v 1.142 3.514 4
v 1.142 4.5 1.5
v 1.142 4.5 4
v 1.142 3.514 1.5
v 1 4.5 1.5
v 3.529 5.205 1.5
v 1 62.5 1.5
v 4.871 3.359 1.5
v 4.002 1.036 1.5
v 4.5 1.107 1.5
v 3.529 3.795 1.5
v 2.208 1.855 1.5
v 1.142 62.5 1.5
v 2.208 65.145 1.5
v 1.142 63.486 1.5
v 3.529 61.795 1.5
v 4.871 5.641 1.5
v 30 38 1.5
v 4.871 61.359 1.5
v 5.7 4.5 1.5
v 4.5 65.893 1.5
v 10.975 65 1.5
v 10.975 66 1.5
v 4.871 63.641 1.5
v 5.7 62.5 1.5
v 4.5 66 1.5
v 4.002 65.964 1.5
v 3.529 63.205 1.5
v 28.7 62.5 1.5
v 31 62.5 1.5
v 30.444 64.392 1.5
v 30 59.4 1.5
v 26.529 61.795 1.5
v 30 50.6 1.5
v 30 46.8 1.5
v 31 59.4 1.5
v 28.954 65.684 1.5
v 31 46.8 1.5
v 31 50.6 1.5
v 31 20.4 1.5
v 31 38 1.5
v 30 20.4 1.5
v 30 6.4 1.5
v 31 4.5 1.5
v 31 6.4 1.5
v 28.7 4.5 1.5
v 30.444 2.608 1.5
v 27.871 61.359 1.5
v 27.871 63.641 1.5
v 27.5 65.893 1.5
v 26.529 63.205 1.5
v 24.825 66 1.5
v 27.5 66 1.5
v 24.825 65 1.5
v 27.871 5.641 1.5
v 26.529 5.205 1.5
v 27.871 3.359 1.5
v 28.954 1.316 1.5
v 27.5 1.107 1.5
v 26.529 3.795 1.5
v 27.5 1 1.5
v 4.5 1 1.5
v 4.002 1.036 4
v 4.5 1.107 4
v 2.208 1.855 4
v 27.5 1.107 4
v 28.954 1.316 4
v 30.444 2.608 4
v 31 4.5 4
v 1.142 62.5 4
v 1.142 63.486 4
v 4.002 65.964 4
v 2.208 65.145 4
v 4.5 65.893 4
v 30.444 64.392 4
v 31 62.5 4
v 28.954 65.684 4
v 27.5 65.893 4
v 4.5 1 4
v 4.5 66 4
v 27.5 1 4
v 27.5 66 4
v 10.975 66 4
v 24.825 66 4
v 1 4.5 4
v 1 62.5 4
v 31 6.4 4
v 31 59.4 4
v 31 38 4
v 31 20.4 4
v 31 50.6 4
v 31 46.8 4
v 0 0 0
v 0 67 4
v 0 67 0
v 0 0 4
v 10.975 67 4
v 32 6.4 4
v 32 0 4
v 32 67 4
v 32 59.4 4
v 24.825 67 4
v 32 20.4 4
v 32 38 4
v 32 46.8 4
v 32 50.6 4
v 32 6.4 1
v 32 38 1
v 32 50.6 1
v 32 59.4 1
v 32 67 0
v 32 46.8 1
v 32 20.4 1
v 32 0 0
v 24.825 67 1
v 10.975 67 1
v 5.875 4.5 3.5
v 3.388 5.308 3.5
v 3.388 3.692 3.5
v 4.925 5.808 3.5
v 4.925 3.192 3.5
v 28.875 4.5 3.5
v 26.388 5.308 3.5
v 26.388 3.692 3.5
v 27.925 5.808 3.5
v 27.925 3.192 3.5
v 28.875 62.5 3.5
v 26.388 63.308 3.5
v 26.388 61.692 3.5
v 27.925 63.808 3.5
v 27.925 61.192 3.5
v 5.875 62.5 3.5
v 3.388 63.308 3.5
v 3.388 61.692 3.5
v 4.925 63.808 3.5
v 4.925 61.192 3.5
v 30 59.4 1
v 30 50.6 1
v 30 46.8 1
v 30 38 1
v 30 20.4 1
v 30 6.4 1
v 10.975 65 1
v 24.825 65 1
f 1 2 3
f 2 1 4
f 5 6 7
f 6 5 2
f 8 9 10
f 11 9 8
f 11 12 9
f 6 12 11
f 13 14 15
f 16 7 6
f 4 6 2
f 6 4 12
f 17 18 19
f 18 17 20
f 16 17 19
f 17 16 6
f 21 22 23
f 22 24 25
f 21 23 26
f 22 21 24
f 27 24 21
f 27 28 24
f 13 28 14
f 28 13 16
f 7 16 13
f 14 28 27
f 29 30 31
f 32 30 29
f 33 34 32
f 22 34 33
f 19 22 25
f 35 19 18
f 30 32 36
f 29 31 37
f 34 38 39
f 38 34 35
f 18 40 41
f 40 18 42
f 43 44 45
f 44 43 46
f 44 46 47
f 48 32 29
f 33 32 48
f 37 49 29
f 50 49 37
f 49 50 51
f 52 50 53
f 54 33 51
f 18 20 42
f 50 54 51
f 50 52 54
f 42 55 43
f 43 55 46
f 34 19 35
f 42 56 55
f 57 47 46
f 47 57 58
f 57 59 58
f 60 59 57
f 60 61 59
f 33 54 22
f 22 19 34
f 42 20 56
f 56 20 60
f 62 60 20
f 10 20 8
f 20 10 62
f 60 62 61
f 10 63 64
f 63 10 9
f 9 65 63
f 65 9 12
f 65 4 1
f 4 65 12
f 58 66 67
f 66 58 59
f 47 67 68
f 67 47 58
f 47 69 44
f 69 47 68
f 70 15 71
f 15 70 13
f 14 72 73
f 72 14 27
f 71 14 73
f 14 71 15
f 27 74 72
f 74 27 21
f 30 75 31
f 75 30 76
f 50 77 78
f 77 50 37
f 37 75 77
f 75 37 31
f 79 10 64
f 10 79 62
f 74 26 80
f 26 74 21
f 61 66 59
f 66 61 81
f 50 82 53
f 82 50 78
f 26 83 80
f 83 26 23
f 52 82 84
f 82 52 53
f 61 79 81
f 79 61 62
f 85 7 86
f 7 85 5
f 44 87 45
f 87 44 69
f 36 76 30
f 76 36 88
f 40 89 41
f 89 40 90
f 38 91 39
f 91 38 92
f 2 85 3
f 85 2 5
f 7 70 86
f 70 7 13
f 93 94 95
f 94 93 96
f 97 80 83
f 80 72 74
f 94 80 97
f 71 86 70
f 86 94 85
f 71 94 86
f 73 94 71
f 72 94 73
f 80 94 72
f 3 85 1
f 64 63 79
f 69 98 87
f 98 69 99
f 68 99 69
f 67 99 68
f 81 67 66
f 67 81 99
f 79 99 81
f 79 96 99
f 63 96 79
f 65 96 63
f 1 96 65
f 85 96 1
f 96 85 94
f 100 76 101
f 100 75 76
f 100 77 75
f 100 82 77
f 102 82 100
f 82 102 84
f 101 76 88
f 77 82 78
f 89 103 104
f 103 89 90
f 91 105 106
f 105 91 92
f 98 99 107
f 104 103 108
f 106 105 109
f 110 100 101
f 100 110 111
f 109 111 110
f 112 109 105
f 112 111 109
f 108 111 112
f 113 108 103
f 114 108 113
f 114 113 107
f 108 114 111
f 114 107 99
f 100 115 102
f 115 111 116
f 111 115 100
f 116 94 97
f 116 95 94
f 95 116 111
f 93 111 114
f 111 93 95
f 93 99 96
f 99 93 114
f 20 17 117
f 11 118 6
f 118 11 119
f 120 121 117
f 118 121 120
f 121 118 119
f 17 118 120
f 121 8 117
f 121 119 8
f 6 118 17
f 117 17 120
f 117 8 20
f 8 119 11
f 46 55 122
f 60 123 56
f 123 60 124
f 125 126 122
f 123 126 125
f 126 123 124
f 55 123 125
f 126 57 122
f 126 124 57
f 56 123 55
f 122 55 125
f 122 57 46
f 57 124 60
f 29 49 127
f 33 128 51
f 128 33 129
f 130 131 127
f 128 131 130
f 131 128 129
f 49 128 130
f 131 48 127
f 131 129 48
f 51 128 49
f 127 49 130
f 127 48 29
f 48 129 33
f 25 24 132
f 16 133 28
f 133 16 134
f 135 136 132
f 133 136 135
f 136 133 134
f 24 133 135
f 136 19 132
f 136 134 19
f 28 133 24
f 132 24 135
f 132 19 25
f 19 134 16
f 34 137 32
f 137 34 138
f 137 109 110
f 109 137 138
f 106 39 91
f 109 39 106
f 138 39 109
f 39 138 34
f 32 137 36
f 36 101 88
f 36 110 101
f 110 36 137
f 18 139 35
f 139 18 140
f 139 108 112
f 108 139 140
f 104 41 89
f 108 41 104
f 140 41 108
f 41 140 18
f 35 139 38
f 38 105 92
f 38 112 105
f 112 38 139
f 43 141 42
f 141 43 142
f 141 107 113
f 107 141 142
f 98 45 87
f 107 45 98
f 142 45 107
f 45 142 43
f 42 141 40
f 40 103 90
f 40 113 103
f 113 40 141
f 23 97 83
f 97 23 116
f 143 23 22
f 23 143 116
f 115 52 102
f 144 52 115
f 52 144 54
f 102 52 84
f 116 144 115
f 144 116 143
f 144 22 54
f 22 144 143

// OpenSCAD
cornerRad = 3.5;
baseThickness = 1;
usbWidth = 8.8;
powerCenter = 54;
usbCenter = 41.4;
hdmiCenter = 12.4;
hdmiWidth = 14;
sdWidth = 13.85;
sdCenter = 16.9;
difference() {
    union() {
        difference() {
            cube([32,67,4]);
            translate([1,1,1.5]) rpiOutline(4);
        }
        translate([4.5,4.5,1.5]) peg();
        translate([27.5,4.5,1.5]) peg();
        translate([27.5,62.5,1.5]) peg();
        translate([4.5,62.5,1.5]) peg();
    }
    translate([0,1,0]) {
        translate([30,powerCenter-(usbWidth/2),1]) cube([2,usbWidth,3]);
        translate([30,usbCenter-(usbWidth/2),1]) cube([2,usbWidth,3]);
        translate([30,hdmiCenter-(hdmiWidth/2),1]) cube([2,hdmiWidth,3]);    
    }
    translate([1,65,0]) {
        translate([sdCenter-(sdWidth/2),0,1]) cube([sdWidth,2,3]); 
    }
}

module rpiOutline(thick) {
    union() {
        translate([3.5,3.5,0]) corner(thick);
        translate([26.5,3.5,0]) corner(thick);
        translate([3.5,61.5,0]) corner(thick);
        translate([26.5,61.5,0]) corner(thick);
        translate([3.5,0,0]) cube([23,65,thick]);
        translate([0,3.5,0]) cube([30,58,thick]);
    }
}

module peg () {
        cylinder(2,1.2,1.375);
}
module corner (thick) {
    cylinder(thick,cornerRad,cornerRad);
}
